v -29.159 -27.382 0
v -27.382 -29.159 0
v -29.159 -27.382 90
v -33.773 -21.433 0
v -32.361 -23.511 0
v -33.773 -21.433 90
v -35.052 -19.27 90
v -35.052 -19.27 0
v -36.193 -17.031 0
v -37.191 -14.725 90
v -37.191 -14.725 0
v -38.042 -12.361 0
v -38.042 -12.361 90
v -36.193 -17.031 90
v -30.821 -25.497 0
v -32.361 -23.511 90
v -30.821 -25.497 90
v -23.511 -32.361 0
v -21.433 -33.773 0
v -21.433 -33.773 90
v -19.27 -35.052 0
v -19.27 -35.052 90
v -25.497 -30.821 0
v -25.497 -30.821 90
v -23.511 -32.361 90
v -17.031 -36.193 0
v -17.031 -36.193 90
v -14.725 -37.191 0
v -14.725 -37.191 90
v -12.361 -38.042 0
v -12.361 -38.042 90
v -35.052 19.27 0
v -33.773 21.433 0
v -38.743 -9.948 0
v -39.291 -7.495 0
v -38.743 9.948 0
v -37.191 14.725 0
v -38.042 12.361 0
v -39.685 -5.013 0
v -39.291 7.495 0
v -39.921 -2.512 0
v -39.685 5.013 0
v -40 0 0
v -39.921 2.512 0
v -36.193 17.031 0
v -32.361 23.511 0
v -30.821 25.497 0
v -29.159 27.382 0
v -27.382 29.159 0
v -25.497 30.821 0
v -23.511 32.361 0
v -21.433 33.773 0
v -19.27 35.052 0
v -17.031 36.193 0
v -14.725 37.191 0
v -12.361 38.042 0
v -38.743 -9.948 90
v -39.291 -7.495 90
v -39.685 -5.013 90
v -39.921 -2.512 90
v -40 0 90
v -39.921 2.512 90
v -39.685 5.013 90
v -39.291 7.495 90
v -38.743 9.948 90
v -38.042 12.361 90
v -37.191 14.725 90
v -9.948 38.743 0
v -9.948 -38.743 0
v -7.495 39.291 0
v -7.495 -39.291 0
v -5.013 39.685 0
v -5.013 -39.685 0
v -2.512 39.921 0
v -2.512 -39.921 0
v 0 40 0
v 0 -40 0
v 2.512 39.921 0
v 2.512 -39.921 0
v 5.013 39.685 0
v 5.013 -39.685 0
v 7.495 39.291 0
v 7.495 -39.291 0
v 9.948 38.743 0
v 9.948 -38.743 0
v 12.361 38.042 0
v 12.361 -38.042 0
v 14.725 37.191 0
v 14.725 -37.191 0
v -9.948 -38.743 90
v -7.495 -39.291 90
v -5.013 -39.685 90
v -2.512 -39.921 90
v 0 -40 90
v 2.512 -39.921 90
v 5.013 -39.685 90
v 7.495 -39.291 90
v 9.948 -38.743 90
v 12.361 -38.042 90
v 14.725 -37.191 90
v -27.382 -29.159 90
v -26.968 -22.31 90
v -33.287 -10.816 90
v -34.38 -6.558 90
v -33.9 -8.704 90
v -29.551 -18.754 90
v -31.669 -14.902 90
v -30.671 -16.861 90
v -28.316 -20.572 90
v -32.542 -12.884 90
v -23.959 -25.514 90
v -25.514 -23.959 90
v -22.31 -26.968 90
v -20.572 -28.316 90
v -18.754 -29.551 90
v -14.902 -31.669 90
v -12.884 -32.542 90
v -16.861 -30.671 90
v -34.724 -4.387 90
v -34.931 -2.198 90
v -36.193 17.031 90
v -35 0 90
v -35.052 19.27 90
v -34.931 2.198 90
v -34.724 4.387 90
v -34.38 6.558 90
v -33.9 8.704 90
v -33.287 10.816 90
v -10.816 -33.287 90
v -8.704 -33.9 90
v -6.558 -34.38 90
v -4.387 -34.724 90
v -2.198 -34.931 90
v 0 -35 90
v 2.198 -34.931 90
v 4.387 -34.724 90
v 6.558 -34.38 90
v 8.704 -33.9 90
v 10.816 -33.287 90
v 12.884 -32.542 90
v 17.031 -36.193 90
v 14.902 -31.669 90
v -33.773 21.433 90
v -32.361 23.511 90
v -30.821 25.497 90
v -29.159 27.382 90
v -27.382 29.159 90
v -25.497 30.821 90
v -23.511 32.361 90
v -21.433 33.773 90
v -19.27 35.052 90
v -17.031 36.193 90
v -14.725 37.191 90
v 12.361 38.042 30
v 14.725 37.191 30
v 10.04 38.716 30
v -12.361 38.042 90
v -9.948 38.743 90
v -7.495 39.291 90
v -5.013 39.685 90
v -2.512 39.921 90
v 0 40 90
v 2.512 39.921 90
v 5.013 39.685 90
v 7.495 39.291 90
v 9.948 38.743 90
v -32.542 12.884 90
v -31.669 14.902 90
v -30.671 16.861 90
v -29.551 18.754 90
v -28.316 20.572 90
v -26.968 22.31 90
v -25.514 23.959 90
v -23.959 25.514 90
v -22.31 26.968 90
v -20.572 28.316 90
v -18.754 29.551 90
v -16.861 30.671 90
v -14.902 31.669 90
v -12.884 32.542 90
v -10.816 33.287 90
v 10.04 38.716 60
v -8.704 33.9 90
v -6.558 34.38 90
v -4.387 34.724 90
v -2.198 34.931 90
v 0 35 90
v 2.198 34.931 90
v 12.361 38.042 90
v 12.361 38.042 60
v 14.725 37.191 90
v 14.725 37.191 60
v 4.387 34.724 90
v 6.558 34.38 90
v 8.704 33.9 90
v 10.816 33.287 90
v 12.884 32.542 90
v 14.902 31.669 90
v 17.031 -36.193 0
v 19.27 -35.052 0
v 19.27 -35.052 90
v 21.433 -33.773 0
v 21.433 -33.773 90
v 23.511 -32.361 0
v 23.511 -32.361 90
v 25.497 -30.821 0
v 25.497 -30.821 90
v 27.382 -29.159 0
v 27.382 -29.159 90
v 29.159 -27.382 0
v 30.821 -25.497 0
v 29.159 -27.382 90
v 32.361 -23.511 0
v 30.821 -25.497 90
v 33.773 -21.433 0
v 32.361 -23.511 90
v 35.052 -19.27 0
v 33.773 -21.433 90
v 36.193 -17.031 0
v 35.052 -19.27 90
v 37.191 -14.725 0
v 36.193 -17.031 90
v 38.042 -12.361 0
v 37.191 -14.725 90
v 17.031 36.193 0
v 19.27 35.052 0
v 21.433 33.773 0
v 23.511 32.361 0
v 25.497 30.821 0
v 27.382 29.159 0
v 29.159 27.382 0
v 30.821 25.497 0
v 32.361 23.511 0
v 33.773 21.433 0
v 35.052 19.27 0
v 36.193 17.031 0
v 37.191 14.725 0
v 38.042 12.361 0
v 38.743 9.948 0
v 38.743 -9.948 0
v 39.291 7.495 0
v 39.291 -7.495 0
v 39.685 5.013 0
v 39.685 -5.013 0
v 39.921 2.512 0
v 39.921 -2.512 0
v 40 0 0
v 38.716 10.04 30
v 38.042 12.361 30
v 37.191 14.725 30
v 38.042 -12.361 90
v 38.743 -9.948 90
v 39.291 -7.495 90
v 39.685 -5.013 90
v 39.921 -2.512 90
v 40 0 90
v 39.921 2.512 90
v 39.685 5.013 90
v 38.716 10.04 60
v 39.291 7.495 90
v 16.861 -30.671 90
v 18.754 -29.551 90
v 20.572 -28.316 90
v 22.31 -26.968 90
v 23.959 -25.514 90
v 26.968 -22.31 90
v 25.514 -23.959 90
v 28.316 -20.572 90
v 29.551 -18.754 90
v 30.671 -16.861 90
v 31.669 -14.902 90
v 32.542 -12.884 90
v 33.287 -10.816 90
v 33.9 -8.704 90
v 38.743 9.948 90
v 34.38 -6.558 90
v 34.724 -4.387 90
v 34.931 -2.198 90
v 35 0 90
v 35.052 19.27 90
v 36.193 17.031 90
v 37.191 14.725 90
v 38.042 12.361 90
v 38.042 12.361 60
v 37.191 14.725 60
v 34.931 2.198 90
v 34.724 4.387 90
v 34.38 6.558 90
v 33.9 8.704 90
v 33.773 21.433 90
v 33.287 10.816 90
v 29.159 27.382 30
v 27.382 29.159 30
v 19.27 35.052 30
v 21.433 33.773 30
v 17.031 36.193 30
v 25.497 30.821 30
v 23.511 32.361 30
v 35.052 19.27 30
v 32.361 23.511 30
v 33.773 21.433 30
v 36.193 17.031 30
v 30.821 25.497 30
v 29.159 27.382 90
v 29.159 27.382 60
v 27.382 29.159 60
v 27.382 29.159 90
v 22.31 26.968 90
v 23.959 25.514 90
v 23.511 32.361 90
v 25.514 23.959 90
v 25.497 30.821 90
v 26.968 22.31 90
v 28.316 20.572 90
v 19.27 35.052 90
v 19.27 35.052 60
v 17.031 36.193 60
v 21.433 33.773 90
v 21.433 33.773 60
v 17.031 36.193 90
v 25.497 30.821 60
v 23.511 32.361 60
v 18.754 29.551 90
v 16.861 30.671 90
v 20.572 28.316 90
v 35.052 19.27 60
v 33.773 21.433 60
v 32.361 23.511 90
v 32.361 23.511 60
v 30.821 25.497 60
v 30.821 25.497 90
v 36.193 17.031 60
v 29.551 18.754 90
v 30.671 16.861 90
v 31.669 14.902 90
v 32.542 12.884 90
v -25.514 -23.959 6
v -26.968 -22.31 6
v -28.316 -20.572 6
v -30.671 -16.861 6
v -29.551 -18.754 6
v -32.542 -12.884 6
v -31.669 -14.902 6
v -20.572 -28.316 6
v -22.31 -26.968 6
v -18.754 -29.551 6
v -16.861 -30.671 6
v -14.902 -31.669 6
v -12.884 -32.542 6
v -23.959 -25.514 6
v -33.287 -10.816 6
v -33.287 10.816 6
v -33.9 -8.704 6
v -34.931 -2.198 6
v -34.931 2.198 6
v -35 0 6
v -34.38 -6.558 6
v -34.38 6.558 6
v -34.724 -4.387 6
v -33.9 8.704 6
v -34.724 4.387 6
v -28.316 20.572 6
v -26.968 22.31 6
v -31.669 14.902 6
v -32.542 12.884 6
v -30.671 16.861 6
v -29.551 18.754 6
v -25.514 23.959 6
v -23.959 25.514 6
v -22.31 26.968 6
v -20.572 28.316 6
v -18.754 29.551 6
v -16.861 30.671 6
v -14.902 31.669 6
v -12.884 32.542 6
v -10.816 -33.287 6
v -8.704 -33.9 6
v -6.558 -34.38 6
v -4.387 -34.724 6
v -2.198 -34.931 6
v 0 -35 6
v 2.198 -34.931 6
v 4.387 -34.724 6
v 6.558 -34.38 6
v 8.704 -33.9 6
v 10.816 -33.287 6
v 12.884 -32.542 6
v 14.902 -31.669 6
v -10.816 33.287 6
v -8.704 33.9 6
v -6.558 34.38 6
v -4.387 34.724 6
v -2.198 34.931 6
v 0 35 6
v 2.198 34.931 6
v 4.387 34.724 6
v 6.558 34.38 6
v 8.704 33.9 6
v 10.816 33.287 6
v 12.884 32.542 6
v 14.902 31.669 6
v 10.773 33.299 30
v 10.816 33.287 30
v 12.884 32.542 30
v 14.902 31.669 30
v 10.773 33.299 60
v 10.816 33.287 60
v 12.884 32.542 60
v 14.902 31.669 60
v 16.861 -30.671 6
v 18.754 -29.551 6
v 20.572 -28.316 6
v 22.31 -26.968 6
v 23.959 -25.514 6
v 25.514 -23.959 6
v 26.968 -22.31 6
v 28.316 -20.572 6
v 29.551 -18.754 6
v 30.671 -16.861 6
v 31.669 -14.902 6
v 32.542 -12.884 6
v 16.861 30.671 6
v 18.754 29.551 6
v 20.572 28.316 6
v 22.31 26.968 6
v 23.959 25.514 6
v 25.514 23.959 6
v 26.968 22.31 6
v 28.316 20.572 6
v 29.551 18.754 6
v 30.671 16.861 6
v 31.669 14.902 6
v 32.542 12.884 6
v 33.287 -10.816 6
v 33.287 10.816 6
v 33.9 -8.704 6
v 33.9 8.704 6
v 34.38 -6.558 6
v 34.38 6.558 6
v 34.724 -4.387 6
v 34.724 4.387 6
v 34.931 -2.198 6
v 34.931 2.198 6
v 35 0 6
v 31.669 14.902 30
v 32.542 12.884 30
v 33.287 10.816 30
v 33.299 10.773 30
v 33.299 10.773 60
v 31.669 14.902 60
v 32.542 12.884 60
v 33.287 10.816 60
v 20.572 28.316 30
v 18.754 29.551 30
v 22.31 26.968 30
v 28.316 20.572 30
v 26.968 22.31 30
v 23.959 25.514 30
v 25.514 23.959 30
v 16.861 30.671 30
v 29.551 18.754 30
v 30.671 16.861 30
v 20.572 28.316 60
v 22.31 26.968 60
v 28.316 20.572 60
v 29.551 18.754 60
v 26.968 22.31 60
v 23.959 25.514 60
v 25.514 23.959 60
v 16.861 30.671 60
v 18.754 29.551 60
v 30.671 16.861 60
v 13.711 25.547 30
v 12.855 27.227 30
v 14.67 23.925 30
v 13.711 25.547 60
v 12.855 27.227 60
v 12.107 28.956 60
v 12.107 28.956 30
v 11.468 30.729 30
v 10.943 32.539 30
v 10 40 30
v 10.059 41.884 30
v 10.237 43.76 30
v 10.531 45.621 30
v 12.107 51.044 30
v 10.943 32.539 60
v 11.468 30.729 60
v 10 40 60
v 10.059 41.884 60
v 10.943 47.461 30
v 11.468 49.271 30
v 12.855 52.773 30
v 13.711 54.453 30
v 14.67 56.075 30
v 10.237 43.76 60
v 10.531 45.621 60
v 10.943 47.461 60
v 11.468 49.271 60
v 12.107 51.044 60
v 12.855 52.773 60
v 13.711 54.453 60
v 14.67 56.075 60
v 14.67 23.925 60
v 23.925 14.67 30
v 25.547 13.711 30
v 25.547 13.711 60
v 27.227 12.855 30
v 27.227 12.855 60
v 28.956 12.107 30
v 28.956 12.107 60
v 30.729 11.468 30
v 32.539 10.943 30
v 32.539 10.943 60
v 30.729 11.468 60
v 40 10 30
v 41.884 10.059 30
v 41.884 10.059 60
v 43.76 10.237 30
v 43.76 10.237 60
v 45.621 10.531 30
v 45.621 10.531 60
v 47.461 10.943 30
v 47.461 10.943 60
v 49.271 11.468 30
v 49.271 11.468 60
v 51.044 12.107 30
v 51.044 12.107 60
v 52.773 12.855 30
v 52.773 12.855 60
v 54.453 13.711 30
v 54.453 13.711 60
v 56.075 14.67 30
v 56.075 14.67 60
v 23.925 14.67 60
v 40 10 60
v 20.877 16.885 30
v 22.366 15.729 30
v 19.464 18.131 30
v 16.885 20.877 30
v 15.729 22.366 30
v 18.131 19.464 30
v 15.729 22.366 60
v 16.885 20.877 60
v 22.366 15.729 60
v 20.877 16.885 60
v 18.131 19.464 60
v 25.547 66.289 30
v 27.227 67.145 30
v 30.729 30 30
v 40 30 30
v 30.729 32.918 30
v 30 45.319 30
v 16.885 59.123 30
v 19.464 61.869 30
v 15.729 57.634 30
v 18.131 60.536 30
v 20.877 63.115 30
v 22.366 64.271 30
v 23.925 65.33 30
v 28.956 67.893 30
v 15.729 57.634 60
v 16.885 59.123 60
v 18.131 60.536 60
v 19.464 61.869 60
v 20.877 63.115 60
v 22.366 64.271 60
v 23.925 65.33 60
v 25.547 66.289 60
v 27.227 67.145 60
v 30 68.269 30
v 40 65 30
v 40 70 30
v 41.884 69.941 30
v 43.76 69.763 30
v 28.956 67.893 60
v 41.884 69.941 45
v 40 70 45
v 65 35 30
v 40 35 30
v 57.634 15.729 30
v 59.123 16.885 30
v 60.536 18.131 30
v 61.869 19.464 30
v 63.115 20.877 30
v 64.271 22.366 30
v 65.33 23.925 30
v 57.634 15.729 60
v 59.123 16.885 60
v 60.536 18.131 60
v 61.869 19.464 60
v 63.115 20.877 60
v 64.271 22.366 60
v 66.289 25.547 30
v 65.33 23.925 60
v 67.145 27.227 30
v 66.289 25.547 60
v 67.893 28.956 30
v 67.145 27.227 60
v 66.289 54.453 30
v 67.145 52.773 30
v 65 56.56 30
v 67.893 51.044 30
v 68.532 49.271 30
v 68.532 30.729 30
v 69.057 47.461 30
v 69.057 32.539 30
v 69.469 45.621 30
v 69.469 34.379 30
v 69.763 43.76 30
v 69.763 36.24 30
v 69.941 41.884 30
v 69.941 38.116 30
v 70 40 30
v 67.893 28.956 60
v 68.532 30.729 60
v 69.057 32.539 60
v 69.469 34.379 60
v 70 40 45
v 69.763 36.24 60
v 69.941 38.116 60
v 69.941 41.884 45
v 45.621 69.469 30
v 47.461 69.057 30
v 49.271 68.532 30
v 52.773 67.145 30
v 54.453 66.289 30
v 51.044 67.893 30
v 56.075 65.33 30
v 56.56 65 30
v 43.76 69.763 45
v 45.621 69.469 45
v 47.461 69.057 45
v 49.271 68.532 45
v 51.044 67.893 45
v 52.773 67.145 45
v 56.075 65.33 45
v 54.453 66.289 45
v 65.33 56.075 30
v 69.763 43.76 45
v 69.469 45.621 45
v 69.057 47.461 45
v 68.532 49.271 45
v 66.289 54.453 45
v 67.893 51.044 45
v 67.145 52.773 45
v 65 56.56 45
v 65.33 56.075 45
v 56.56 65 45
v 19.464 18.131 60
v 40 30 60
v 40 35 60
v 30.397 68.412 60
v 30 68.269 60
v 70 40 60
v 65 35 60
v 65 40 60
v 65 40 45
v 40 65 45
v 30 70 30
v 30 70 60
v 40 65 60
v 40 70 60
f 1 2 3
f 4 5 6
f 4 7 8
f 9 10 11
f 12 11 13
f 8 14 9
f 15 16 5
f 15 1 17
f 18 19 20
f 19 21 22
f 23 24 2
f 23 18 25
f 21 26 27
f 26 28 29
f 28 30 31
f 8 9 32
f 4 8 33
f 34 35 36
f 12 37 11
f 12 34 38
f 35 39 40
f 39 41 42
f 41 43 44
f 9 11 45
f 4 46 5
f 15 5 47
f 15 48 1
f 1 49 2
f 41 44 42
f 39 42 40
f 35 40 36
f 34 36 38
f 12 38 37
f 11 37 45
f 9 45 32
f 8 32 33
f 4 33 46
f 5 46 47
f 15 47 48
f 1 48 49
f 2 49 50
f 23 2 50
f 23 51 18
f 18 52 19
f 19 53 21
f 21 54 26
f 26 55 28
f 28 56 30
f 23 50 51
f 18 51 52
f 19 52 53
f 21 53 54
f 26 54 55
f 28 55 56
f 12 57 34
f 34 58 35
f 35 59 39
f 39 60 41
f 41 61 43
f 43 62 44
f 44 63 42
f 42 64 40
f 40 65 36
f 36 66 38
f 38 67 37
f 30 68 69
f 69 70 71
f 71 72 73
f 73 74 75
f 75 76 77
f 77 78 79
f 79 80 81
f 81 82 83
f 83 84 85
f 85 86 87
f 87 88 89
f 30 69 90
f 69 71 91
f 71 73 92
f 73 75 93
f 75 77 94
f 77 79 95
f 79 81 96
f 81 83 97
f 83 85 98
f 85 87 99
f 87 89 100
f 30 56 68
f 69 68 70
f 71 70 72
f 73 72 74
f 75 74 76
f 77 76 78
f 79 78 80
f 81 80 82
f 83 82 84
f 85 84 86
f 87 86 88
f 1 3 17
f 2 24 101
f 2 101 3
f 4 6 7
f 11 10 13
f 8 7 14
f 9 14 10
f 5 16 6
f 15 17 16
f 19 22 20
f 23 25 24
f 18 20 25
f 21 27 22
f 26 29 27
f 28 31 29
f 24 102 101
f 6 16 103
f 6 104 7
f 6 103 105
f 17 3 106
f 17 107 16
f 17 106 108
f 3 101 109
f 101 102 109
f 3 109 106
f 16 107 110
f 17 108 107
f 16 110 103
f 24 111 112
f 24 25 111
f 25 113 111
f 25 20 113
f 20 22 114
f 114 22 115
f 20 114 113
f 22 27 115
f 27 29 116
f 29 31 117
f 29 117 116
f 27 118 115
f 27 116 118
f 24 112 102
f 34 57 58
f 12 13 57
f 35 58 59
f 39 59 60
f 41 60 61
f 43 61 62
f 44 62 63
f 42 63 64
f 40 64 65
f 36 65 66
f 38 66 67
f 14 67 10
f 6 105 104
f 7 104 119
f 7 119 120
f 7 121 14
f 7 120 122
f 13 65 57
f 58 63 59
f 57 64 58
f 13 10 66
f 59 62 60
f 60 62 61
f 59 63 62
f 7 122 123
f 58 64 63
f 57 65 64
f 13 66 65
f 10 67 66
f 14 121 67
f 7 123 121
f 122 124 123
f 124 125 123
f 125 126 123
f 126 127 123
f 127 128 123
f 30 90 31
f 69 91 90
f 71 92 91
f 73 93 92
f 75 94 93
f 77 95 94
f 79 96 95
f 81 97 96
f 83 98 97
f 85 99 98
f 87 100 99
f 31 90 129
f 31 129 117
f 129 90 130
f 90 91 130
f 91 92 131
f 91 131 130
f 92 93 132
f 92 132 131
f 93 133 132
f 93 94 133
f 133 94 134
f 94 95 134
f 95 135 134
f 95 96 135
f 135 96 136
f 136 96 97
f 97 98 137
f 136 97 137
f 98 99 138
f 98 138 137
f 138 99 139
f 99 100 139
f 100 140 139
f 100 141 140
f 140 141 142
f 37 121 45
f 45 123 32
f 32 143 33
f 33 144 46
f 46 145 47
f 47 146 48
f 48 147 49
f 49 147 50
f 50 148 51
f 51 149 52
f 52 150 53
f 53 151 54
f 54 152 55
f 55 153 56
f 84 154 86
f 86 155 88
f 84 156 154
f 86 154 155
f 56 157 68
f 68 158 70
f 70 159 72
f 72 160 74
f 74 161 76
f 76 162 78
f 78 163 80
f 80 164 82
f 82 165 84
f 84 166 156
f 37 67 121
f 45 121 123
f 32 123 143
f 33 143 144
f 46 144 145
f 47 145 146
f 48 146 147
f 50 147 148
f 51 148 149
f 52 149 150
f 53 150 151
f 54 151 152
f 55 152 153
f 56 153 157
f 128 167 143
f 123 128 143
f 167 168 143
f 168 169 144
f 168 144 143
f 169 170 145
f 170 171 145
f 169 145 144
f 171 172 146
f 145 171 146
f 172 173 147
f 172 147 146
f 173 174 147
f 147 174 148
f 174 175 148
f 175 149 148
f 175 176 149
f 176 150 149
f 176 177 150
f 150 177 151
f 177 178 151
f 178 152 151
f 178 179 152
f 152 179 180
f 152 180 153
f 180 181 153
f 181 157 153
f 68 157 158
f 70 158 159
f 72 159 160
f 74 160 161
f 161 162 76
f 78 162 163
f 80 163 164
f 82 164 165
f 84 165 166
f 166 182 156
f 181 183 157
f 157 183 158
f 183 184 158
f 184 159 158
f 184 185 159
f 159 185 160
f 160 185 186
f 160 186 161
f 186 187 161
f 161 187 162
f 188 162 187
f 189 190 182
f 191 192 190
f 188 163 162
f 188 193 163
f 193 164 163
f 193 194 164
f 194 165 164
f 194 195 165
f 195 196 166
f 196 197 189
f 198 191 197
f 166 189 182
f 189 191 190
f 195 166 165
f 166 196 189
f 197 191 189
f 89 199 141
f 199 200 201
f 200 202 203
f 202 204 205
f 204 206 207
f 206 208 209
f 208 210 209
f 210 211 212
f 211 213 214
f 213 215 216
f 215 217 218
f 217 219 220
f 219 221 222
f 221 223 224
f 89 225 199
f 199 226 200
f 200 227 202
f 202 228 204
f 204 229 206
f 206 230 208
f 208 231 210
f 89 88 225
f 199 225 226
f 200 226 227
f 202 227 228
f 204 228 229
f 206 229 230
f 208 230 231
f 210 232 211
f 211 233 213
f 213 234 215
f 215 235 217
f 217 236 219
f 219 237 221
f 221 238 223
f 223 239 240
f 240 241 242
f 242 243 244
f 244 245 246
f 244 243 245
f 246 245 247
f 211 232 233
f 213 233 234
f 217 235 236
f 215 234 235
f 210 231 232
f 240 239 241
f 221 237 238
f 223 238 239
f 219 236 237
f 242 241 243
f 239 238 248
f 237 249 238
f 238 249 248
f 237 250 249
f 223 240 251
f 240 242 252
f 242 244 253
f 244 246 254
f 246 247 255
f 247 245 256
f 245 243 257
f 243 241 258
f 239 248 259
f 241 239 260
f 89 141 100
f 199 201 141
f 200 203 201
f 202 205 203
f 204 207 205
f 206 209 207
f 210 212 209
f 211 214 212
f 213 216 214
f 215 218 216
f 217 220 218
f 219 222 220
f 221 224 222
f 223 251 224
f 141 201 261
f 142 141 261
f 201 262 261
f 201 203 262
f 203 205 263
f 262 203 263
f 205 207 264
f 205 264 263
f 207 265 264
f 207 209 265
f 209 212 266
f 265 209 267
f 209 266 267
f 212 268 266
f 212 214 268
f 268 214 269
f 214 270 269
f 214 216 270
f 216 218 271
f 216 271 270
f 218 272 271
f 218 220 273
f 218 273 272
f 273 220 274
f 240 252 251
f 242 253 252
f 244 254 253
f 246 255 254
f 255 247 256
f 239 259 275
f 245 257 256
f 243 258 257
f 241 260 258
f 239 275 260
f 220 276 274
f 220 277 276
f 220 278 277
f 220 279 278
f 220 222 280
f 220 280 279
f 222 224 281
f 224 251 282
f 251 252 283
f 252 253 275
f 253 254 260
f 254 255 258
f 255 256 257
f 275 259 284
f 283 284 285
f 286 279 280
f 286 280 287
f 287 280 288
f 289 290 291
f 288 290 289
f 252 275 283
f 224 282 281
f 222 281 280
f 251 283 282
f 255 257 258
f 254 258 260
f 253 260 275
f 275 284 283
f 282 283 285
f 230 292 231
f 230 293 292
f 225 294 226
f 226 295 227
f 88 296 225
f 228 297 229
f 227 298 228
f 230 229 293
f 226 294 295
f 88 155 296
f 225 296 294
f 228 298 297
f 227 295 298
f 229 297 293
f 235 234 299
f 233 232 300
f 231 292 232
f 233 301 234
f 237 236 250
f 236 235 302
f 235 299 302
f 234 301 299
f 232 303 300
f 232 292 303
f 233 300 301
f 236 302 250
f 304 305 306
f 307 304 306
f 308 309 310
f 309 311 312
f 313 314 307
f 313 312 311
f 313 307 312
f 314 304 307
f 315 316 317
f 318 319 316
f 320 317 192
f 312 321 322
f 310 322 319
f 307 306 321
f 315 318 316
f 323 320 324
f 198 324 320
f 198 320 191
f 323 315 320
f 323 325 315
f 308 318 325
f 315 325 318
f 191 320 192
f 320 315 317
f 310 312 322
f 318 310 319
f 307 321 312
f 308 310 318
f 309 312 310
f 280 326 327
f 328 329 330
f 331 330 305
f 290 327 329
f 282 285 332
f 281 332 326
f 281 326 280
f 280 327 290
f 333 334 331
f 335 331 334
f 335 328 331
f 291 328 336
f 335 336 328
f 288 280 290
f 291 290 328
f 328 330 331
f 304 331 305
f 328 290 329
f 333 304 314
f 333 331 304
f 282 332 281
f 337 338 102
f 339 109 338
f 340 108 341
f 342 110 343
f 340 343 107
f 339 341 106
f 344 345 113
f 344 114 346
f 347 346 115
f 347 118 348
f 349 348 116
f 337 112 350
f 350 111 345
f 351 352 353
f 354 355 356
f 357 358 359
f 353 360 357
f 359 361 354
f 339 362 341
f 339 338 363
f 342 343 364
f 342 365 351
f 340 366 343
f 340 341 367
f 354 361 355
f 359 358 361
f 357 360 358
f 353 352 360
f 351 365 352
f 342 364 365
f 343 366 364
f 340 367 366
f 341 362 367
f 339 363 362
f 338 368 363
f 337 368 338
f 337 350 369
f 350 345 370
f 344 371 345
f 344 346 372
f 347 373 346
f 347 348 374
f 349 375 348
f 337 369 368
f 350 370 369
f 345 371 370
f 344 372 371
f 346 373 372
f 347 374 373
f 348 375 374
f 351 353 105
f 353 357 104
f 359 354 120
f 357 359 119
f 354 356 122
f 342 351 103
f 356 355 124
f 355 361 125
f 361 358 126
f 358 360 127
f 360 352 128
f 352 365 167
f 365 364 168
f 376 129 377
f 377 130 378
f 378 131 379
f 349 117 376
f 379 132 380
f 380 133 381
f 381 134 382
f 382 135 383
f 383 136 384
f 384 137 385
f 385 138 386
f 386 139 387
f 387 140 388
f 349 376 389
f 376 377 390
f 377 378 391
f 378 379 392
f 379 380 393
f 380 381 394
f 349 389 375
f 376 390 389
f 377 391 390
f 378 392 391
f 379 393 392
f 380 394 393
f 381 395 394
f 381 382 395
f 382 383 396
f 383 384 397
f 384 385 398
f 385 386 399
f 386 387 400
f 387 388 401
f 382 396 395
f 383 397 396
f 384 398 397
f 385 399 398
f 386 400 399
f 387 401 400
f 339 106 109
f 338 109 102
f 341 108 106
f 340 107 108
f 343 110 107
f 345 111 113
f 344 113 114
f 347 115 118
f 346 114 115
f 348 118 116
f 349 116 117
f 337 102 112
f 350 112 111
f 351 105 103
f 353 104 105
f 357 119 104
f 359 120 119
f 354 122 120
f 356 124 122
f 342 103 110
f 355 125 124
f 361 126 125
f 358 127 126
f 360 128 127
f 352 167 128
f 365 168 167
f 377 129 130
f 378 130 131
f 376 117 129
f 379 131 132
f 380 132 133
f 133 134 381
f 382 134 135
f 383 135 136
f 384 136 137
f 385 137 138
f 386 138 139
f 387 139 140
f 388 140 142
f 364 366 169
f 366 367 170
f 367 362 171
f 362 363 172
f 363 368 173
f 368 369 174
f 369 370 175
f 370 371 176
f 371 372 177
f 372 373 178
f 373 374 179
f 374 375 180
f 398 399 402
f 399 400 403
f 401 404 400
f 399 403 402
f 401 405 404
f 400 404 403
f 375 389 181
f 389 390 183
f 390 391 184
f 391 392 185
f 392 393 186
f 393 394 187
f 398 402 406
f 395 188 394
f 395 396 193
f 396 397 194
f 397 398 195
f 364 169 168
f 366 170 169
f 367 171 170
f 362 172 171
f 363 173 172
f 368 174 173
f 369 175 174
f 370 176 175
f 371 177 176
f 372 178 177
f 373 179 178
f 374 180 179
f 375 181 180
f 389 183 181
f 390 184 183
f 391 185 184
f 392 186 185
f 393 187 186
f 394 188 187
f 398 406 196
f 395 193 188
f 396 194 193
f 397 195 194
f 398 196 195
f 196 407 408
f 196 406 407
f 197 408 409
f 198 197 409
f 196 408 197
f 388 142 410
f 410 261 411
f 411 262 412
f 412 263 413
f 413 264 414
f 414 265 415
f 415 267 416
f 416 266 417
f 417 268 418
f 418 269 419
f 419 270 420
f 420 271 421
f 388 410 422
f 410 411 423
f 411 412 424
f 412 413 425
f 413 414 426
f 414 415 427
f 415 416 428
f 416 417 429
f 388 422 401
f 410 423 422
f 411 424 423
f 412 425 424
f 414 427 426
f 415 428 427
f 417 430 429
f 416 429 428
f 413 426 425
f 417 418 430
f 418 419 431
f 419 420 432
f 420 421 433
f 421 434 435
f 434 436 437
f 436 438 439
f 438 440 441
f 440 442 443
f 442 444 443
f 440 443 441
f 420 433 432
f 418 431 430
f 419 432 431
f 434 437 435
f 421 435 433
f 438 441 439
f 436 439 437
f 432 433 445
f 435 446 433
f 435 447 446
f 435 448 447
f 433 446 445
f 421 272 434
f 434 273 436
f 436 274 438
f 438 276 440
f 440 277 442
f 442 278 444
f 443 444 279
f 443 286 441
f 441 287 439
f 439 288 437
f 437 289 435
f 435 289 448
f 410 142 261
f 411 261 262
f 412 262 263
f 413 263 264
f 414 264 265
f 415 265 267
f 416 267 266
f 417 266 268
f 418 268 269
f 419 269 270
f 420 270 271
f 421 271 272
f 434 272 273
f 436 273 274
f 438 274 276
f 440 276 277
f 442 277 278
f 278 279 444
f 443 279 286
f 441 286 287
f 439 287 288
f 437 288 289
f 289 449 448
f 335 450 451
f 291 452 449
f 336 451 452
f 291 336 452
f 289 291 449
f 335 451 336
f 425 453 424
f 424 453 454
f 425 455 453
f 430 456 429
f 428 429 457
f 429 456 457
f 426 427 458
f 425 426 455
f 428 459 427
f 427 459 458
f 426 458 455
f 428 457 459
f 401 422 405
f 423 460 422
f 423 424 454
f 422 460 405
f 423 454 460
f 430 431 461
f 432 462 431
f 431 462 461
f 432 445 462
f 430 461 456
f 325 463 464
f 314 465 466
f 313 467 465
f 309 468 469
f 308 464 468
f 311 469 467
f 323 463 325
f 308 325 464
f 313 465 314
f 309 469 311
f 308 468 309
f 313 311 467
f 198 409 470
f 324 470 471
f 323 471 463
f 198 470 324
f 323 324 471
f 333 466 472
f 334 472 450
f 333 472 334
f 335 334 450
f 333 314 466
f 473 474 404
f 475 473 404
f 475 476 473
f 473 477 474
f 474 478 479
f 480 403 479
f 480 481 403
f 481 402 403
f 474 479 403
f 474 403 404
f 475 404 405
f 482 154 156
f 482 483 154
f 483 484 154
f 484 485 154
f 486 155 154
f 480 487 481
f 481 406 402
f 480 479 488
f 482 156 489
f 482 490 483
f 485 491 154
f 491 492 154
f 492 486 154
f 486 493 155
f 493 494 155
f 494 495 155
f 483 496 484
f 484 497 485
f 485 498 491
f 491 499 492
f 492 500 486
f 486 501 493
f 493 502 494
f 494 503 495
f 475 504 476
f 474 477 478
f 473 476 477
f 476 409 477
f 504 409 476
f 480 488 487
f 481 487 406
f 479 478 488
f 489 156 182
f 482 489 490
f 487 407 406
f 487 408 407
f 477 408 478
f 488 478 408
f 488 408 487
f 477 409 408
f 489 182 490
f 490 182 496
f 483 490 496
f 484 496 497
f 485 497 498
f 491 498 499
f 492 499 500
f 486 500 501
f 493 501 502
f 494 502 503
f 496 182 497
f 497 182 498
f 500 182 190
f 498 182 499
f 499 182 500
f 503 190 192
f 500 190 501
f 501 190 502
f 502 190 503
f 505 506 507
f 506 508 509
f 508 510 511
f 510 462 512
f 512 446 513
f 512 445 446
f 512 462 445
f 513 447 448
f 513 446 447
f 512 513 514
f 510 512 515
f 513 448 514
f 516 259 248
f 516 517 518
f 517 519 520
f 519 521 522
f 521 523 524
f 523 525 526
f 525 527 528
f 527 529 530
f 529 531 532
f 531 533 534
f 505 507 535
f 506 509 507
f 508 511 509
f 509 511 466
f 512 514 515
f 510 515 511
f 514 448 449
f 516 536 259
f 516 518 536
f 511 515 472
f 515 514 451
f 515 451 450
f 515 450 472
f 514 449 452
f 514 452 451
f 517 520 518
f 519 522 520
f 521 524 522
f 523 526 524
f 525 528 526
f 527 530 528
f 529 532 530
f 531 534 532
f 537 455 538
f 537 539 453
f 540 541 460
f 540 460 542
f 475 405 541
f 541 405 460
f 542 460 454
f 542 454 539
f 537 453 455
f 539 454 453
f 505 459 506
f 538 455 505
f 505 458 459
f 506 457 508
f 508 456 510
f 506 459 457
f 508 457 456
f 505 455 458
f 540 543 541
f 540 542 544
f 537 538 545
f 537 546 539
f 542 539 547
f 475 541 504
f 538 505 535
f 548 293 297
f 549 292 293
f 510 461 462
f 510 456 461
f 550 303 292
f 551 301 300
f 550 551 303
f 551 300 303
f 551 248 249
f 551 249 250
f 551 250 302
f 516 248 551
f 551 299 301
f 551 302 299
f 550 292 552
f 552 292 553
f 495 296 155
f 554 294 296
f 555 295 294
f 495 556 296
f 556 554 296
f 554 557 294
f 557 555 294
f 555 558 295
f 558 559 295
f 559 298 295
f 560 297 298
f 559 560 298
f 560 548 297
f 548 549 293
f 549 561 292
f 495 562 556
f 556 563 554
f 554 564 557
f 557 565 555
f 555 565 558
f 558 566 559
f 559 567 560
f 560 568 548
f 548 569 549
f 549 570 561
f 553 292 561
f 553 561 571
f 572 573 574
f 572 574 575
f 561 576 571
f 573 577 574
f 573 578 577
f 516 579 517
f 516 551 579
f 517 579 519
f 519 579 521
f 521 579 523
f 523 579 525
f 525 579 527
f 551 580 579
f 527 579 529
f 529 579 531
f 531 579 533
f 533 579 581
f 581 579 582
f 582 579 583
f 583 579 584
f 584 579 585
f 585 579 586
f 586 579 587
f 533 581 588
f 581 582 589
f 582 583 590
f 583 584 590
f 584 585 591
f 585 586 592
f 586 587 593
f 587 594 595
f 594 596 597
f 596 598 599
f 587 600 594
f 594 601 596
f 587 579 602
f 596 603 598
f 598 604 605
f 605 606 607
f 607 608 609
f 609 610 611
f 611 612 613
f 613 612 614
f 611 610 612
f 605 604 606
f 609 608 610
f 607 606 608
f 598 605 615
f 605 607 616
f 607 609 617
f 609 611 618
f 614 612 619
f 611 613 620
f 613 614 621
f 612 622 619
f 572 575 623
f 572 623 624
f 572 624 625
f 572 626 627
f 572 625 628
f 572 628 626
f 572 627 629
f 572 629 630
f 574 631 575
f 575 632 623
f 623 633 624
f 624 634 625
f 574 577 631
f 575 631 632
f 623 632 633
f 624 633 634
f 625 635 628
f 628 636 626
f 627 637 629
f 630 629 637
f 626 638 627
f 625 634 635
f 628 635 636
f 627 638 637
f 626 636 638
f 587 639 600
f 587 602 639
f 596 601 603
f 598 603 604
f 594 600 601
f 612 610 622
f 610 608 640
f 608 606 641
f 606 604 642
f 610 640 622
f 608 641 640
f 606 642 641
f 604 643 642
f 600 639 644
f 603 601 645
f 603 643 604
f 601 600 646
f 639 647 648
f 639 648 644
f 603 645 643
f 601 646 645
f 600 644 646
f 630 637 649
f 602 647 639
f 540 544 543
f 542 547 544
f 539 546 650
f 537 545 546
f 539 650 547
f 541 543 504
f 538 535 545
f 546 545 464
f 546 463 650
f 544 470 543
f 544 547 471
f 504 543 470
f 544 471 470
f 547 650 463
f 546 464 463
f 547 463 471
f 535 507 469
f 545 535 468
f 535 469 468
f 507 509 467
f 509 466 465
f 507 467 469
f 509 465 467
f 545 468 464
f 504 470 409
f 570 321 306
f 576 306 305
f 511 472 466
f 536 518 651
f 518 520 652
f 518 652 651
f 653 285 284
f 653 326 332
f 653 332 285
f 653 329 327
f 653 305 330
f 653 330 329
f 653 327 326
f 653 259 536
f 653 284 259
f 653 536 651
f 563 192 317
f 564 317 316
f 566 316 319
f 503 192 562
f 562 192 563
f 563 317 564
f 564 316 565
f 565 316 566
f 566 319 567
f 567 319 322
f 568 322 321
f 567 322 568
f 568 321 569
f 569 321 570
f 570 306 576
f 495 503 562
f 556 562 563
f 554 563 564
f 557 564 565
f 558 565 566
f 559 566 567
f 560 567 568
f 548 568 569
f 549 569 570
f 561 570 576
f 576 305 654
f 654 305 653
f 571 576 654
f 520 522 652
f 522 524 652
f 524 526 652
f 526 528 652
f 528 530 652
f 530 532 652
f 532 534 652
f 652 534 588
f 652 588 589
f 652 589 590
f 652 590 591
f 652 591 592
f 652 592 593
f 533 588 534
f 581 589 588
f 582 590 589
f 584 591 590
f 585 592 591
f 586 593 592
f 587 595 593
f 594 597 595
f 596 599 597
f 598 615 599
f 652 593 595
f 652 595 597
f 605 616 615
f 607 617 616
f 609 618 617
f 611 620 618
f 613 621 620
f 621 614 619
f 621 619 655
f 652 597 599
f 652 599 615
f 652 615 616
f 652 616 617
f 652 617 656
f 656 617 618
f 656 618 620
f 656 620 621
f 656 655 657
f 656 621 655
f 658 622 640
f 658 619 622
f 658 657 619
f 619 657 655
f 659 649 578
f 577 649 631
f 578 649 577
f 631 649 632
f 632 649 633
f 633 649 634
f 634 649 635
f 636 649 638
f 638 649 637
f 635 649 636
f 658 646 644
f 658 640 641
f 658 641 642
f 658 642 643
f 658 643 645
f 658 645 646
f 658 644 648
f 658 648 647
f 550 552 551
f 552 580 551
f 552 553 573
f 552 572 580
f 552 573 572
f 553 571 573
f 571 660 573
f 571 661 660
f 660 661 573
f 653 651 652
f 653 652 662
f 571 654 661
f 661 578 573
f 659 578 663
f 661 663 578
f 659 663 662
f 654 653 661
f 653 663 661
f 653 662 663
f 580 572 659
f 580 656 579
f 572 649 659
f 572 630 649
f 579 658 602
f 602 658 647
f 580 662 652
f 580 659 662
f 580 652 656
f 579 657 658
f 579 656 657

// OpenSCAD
// マグカップの設計パラメータ
mug_outer_r = 40;      // 外径 80mm -> 半径 40mm
mug_inner_r = 35;      // 内径 70mm -> 半径 35mm
mug_height = 90;       // 高さ 90mm
mug_bottom_t = 6;      // 底の厚み 6mm

handle_r = 30;         // 取っ手の外側の半径（空間を確保するため30に設定）
handle_h = 30;         // 取っ手の高さ 30mm
handle_hole_w = 25;    // 取っ手の内側の空間の幅 25mm
handle_hole_h = 30;    // 取っ手の内側の空間の高さ 30mm

$fn = 100;

// 本体
difference() {
    // 外側の円筒
    cylinder(h = mug_height, r = mug_outer_r);
    
    // 内側の空洞（底面の厚みを考慮して上方向にずらす）
    translate([0, 0, mug_bottom_t])
        cylinder(h = mug_height, r = mug_inner_r);
}

// 取っ手 (Handle)
union() {
    difference() {
        union() {
            // 取っ手本体 (D字形状)
            // 中心を x=40 (マグの表面), y=40, z=45 に配置
            // cylinder(h=30, r=30, center=true) は Z方向に30、X方向に-30〜30、Y方向に-30〜30を占める
            translate([40, 40, 45])
            difference() {
                cylinder(h = handle_h, r = handle_r, center = true);
                
                // X方向のカット：
                // x=35の位置でカットすることで、マグの表面(x=40)より少し内側から
                // 取っ手を開始させ、直線的な「D字」の背面を作りつつ、
                // マグの曲面に対して確実に接続されるようにする
                cube([35, 100, 100]);
            }
            
            // 接続補強 (Connection Bridge)
            // マグの曲面と 取っ手の平面を確実に結合するための接合部
            // x=30からx=35の範囲を埋めることで、マニフォールドを維持
            translate([30, 30, 30])
            cube([10, 40, 30]);
        }
        
        // 取っ手の内側の空間（指が入る穴）をくり抜く
        // 取っ手の厚み（x=40〜x=70）の範囲に配置
        translate([40, 35, 30])
        cube([handle_hole_w, handle_hole_h, handle_hole_h]);
    }
}
